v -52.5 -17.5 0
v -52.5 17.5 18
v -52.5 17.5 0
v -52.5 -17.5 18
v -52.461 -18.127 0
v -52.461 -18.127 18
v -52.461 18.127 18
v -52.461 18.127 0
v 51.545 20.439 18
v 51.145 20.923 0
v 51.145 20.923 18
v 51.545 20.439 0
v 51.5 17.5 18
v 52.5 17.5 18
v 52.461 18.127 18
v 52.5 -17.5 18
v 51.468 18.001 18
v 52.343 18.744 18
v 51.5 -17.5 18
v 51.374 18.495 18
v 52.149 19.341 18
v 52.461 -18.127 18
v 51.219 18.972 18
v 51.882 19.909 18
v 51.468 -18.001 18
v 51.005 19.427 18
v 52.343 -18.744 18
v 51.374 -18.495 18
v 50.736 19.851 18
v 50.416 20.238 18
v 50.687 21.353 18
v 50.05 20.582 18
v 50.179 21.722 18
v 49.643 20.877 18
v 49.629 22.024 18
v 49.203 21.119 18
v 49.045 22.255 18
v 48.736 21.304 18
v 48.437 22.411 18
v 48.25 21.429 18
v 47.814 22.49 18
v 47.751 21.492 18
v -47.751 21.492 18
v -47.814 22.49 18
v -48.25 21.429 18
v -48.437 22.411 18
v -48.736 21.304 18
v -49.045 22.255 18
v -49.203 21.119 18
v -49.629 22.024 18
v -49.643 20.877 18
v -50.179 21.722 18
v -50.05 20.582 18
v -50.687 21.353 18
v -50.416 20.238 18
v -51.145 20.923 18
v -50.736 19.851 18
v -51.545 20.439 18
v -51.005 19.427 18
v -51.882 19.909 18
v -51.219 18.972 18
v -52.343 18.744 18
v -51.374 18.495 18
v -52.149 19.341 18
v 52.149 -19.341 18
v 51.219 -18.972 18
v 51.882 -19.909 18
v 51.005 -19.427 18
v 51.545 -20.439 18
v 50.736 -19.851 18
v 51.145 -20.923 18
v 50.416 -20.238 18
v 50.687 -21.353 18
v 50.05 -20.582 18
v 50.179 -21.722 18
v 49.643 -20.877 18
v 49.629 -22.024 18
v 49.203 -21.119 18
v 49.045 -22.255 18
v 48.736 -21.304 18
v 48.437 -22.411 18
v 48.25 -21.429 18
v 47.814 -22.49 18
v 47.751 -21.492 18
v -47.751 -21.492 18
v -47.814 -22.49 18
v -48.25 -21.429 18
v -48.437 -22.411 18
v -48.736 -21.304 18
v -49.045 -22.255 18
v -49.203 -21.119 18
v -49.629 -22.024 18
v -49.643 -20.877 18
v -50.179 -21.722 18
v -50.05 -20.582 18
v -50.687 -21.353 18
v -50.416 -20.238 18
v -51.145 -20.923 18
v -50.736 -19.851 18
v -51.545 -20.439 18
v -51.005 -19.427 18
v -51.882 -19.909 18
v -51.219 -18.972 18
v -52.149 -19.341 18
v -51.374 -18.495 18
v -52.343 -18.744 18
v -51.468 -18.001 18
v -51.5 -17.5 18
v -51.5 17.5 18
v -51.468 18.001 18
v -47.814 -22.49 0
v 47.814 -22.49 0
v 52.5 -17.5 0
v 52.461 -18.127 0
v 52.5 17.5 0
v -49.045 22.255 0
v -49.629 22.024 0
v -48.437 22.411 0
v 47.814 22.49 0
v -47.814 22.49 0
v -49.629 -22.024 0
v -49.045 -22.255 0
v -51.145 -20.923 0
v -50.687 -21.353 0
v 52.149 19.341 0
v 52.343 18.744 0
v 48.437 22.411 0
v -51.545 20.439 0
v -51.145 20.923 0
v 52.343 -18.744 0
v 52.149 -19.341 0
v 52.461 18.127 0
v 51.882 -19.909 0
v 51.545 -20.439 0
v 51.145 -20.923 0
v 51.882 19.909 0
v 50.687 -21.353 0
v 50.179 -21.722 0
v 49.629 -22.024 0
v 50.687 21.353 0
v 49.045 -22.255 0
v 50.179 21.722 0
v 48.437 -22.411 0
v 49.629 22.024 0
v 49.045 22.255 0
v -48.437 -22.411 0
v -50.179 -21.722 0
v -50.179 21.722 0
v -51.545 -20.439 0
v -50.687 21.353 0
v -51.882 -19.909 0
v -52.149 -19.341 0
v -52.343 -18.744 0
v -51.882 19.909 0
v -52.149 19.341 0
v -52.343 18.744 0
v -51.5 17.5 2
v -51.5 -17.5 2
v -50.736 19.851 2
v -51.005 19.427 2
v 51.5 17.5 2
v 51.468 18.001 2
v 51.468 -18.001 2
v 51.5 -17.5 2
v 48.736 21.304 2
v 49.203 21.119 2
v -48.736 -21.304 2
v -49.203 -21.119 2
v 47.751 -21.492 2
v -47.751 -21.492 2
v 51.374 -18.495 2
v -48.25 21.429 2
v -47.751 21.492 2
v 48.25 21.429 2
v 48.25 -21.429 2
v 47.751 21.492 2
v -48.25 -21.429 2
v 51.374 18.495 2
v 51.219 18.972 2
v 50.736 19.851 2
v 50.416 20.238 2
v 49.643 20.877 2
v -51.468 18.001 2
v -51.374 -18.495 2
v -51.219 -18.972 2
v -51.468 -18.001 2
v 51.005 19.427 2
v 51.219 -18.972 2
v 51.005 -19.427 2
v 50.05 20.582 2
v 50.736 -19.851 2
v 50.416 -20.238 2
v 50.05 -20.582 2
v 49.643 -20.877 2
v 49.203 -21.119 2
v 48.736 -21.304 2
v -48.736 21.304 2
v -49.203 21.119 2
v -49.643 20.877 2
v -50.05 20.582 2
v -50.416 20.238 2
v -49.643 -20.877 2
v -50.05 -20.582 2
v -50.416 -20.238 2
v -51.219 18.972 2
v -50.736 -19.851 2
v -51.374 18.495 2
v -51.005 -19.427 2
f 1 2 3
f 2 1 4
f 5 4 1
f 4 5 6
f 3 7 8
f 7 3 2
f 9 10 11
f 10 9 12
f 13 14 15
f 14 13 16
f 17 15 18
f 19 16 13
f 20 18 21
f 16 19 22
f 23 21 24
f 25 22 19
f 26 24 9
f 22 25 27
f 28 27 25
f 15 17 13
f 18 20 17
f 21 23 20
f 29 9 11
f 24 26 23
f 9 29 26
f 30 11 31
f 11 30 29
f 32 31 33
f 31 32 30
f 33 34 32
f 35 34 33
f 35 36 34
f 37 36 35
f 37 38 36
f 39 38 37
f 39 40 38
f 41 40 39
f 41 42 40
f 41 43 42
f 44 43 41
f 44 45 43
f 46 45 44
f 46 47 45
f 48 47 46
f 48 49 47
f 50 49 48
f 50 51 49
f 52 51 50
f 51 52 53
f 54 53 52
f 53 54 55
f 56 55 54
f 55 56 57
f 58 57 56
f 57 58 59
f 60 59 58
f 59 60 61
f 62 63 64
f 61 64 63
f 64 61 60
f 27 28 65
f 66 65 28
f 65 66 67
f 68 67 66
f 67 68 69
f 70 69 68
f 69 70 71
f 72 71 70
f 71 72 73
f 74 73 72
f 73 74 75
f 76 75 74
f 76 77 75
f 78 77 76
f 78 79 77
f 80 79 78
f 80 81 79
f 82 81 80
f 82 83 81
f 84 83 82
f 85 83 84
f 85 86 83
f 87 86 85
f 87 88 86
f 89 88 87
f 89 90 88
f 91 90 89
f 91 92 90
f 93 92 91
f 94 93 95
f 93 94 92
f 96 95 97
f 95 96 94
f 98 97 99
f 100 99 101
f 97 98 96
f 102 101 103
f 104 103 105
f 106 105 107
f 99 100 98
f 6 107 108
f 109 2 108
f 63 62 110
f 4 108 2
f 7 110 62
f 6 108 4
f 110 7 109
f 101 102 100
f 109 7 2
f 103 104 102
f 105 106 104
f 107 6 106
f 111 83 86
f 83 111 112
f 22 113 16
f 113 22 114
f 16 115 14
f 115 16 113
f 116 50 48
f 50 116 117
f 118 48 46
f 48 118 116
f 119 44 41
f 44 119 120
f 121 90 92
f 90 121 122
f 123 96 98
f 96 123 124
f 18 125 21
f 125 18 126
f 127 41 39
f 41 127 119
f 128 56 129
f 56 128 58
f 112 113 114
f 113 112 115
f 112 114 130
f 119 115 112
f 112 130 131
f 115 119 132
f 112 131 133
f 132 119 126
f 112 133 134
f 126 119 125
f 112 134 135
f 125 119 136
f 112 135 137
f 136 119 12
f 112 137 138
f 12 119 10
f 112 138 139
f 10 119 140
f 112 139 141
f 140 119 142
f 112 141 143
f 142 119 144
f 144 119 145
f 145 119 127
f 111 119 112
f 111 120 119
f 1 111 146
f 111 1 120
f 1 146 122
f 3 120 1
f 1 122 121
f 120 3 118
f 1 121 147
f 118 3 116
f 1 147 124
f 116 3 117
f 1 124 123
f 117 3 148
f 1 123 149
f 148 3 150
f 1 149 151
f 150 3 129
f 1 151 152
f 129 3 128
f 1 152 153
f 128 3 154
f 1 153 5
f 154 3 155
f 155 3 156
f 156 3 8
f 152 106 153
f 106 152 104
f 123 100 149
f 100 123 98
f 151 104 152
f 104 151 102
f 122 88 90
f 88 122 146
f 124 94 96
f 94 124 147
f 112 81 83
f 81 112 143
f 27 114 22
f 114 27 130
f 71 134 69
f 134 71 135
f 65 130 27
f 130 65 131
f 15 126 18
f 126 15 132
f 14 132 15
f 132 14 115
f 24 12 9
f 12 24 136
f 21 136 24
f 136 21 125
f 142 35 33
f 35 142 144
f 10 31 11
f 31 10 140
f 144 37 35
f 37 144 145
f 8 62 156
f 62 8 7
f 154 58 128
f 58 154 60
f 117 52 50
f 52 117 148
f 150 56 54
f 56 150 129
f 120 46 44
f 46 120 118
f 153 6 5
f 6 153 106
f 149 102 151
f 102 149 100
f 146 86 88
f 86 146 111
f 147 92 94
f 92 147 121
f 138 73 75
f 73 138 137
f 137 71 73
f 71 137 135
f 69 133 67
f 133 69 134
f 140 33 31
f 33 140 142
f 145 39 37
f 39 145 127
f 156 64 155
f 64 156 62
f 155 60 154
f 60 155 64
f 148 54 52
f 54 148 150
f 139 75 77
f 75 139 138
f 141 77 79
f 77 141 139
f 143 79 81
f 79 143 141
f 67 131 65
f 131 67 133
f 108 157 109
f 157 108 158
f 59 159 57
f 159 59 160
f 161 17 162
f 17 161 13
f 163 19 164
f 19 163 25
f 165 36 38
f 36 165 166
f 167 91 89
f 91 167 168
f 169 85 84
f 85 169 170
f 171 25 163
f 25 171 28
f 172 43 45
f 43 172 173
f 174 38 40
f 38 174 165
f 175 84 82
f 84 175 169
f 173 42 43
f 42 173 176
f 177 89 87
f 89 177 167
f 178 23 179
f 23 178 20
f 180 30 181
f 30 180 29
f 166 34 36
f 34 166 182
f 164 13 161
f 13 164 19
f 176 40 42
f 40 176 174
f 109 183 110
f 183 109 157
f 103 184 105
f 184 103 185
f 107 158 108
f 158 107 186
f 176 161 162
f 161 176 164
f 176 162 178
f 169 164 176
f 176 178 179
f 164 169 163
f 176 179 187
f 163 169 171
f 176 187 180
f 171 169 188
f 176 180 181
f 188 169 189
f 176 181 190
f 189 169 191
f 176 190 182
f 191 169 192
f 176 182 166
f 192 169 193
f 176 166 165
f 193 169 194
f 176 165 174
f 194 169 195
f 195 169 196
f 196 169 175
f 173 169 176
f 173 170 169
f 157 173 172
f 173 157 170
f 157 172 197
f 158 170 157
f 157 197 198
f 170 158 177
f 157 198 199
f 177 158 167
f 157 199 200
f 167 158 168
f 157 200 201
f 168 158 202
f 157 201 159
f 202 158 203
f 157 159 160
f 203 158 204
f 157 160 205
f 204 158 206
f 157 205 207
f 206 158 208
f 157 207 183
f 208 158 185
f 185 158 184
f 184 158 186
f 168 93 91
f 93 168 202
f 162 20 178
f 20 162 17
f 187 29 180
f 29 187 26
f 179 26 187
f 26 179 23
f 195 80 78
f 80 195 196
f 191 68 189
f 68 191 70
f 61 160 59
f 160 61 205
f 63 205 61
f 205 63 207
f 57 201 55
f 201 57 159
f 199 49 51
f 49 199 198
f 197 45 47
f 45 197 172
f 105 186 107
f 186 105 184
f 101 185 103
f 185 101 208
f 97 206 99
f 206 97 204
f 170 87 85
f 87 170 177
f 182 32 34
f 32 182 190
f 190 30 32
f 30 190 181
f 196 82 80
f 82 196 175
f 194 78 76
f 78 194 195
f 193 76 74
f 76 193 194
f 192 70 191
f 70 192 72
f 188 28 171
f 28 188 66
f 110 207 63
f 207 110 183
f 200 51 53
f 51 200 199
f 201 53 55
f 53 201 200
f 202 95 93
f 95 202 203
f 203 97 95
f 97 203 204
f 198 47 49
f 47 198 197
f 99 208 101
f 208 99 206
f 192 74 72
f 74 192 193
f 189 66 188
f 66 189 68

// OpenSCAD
$fn = 50;


difference() {
	union() {
		hull() {
			translate(v = [-47.5000000000, 17.5000000000, 0]) {
				cylinder(h = 18, r = 5);
			}
			translate(v = [47.5000000000, 17.5000000000, 0]) {
				cylinder(h = 18, r = 5);
			}
			translate(v = [-47.5000000000, -17.5000000000, 0]) {
				cylinder(h = 18, r = 5);
			}
			translate(v = [47.5000000000, -17.5000000000, 0]) {
				cylinder(h = 18, r = 5);
			}
		}
	}
	union() {
		translate(v = [0, 0, 2]) {
			hull() {
				translate(v = [-47.5000000000, 17.5000000000, 0]) {
					cylinder(h = 16, r = 4);
				}
				translate(v = [47.5000000000, 17.5000000000, 0]) {
					cylinder(h = 16, r = 4);
				}
				translate(v = [-47.5000000000, -17.5000000000, 0]) {
					cylinder(h = 16, r = 4);
				}
				translate(v = [47.5000000000, -17.5000000000, 0]) {
					cylinder(h = 16, r = 4);
				}
			}
		}
	}
}
